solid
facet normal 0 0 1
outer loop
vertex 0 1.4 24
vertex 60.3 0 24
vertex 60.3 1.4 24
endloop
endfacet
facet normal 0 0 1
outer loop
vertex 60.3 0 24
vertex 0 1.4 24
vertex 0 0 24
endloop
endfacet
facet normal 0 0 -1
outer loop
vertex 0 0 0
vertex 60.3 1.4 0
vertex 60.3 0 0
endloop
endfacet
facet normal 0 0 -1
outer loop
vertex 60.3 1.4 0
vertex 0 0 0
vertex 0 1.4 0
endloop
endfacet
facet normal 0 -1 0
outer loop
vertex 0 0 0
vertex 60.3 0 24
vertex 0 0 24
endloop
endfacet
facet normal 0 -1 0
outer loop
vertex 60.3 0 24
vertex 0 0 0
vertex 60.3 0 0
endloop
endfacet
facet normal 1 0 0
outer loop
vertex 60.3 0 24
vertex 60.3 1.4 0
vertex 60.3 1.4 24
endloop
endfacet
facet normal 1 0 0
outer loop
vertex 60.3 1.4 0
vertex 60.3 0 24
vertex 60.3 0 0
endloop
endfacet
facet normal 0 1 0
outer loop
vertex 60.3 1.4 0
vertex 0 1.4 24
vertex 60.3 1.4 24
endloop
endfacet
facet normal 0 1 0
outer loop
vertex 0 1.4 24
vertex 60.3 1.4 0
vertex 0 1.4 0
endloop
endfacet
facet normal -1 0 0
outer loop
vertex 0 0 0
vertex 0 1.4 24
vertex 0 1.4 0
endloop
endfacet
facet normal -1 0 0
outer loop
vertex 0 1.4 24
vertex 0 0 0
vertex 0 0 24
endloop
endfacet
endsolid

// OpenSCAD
$fn=50;


breite = 60.3;
tiefe = 41;
hoehe = 21+3;


wanddicke = 1.4;
edge_radius = wanddicke;


cube([breite, edge_radius, hoehe]);
